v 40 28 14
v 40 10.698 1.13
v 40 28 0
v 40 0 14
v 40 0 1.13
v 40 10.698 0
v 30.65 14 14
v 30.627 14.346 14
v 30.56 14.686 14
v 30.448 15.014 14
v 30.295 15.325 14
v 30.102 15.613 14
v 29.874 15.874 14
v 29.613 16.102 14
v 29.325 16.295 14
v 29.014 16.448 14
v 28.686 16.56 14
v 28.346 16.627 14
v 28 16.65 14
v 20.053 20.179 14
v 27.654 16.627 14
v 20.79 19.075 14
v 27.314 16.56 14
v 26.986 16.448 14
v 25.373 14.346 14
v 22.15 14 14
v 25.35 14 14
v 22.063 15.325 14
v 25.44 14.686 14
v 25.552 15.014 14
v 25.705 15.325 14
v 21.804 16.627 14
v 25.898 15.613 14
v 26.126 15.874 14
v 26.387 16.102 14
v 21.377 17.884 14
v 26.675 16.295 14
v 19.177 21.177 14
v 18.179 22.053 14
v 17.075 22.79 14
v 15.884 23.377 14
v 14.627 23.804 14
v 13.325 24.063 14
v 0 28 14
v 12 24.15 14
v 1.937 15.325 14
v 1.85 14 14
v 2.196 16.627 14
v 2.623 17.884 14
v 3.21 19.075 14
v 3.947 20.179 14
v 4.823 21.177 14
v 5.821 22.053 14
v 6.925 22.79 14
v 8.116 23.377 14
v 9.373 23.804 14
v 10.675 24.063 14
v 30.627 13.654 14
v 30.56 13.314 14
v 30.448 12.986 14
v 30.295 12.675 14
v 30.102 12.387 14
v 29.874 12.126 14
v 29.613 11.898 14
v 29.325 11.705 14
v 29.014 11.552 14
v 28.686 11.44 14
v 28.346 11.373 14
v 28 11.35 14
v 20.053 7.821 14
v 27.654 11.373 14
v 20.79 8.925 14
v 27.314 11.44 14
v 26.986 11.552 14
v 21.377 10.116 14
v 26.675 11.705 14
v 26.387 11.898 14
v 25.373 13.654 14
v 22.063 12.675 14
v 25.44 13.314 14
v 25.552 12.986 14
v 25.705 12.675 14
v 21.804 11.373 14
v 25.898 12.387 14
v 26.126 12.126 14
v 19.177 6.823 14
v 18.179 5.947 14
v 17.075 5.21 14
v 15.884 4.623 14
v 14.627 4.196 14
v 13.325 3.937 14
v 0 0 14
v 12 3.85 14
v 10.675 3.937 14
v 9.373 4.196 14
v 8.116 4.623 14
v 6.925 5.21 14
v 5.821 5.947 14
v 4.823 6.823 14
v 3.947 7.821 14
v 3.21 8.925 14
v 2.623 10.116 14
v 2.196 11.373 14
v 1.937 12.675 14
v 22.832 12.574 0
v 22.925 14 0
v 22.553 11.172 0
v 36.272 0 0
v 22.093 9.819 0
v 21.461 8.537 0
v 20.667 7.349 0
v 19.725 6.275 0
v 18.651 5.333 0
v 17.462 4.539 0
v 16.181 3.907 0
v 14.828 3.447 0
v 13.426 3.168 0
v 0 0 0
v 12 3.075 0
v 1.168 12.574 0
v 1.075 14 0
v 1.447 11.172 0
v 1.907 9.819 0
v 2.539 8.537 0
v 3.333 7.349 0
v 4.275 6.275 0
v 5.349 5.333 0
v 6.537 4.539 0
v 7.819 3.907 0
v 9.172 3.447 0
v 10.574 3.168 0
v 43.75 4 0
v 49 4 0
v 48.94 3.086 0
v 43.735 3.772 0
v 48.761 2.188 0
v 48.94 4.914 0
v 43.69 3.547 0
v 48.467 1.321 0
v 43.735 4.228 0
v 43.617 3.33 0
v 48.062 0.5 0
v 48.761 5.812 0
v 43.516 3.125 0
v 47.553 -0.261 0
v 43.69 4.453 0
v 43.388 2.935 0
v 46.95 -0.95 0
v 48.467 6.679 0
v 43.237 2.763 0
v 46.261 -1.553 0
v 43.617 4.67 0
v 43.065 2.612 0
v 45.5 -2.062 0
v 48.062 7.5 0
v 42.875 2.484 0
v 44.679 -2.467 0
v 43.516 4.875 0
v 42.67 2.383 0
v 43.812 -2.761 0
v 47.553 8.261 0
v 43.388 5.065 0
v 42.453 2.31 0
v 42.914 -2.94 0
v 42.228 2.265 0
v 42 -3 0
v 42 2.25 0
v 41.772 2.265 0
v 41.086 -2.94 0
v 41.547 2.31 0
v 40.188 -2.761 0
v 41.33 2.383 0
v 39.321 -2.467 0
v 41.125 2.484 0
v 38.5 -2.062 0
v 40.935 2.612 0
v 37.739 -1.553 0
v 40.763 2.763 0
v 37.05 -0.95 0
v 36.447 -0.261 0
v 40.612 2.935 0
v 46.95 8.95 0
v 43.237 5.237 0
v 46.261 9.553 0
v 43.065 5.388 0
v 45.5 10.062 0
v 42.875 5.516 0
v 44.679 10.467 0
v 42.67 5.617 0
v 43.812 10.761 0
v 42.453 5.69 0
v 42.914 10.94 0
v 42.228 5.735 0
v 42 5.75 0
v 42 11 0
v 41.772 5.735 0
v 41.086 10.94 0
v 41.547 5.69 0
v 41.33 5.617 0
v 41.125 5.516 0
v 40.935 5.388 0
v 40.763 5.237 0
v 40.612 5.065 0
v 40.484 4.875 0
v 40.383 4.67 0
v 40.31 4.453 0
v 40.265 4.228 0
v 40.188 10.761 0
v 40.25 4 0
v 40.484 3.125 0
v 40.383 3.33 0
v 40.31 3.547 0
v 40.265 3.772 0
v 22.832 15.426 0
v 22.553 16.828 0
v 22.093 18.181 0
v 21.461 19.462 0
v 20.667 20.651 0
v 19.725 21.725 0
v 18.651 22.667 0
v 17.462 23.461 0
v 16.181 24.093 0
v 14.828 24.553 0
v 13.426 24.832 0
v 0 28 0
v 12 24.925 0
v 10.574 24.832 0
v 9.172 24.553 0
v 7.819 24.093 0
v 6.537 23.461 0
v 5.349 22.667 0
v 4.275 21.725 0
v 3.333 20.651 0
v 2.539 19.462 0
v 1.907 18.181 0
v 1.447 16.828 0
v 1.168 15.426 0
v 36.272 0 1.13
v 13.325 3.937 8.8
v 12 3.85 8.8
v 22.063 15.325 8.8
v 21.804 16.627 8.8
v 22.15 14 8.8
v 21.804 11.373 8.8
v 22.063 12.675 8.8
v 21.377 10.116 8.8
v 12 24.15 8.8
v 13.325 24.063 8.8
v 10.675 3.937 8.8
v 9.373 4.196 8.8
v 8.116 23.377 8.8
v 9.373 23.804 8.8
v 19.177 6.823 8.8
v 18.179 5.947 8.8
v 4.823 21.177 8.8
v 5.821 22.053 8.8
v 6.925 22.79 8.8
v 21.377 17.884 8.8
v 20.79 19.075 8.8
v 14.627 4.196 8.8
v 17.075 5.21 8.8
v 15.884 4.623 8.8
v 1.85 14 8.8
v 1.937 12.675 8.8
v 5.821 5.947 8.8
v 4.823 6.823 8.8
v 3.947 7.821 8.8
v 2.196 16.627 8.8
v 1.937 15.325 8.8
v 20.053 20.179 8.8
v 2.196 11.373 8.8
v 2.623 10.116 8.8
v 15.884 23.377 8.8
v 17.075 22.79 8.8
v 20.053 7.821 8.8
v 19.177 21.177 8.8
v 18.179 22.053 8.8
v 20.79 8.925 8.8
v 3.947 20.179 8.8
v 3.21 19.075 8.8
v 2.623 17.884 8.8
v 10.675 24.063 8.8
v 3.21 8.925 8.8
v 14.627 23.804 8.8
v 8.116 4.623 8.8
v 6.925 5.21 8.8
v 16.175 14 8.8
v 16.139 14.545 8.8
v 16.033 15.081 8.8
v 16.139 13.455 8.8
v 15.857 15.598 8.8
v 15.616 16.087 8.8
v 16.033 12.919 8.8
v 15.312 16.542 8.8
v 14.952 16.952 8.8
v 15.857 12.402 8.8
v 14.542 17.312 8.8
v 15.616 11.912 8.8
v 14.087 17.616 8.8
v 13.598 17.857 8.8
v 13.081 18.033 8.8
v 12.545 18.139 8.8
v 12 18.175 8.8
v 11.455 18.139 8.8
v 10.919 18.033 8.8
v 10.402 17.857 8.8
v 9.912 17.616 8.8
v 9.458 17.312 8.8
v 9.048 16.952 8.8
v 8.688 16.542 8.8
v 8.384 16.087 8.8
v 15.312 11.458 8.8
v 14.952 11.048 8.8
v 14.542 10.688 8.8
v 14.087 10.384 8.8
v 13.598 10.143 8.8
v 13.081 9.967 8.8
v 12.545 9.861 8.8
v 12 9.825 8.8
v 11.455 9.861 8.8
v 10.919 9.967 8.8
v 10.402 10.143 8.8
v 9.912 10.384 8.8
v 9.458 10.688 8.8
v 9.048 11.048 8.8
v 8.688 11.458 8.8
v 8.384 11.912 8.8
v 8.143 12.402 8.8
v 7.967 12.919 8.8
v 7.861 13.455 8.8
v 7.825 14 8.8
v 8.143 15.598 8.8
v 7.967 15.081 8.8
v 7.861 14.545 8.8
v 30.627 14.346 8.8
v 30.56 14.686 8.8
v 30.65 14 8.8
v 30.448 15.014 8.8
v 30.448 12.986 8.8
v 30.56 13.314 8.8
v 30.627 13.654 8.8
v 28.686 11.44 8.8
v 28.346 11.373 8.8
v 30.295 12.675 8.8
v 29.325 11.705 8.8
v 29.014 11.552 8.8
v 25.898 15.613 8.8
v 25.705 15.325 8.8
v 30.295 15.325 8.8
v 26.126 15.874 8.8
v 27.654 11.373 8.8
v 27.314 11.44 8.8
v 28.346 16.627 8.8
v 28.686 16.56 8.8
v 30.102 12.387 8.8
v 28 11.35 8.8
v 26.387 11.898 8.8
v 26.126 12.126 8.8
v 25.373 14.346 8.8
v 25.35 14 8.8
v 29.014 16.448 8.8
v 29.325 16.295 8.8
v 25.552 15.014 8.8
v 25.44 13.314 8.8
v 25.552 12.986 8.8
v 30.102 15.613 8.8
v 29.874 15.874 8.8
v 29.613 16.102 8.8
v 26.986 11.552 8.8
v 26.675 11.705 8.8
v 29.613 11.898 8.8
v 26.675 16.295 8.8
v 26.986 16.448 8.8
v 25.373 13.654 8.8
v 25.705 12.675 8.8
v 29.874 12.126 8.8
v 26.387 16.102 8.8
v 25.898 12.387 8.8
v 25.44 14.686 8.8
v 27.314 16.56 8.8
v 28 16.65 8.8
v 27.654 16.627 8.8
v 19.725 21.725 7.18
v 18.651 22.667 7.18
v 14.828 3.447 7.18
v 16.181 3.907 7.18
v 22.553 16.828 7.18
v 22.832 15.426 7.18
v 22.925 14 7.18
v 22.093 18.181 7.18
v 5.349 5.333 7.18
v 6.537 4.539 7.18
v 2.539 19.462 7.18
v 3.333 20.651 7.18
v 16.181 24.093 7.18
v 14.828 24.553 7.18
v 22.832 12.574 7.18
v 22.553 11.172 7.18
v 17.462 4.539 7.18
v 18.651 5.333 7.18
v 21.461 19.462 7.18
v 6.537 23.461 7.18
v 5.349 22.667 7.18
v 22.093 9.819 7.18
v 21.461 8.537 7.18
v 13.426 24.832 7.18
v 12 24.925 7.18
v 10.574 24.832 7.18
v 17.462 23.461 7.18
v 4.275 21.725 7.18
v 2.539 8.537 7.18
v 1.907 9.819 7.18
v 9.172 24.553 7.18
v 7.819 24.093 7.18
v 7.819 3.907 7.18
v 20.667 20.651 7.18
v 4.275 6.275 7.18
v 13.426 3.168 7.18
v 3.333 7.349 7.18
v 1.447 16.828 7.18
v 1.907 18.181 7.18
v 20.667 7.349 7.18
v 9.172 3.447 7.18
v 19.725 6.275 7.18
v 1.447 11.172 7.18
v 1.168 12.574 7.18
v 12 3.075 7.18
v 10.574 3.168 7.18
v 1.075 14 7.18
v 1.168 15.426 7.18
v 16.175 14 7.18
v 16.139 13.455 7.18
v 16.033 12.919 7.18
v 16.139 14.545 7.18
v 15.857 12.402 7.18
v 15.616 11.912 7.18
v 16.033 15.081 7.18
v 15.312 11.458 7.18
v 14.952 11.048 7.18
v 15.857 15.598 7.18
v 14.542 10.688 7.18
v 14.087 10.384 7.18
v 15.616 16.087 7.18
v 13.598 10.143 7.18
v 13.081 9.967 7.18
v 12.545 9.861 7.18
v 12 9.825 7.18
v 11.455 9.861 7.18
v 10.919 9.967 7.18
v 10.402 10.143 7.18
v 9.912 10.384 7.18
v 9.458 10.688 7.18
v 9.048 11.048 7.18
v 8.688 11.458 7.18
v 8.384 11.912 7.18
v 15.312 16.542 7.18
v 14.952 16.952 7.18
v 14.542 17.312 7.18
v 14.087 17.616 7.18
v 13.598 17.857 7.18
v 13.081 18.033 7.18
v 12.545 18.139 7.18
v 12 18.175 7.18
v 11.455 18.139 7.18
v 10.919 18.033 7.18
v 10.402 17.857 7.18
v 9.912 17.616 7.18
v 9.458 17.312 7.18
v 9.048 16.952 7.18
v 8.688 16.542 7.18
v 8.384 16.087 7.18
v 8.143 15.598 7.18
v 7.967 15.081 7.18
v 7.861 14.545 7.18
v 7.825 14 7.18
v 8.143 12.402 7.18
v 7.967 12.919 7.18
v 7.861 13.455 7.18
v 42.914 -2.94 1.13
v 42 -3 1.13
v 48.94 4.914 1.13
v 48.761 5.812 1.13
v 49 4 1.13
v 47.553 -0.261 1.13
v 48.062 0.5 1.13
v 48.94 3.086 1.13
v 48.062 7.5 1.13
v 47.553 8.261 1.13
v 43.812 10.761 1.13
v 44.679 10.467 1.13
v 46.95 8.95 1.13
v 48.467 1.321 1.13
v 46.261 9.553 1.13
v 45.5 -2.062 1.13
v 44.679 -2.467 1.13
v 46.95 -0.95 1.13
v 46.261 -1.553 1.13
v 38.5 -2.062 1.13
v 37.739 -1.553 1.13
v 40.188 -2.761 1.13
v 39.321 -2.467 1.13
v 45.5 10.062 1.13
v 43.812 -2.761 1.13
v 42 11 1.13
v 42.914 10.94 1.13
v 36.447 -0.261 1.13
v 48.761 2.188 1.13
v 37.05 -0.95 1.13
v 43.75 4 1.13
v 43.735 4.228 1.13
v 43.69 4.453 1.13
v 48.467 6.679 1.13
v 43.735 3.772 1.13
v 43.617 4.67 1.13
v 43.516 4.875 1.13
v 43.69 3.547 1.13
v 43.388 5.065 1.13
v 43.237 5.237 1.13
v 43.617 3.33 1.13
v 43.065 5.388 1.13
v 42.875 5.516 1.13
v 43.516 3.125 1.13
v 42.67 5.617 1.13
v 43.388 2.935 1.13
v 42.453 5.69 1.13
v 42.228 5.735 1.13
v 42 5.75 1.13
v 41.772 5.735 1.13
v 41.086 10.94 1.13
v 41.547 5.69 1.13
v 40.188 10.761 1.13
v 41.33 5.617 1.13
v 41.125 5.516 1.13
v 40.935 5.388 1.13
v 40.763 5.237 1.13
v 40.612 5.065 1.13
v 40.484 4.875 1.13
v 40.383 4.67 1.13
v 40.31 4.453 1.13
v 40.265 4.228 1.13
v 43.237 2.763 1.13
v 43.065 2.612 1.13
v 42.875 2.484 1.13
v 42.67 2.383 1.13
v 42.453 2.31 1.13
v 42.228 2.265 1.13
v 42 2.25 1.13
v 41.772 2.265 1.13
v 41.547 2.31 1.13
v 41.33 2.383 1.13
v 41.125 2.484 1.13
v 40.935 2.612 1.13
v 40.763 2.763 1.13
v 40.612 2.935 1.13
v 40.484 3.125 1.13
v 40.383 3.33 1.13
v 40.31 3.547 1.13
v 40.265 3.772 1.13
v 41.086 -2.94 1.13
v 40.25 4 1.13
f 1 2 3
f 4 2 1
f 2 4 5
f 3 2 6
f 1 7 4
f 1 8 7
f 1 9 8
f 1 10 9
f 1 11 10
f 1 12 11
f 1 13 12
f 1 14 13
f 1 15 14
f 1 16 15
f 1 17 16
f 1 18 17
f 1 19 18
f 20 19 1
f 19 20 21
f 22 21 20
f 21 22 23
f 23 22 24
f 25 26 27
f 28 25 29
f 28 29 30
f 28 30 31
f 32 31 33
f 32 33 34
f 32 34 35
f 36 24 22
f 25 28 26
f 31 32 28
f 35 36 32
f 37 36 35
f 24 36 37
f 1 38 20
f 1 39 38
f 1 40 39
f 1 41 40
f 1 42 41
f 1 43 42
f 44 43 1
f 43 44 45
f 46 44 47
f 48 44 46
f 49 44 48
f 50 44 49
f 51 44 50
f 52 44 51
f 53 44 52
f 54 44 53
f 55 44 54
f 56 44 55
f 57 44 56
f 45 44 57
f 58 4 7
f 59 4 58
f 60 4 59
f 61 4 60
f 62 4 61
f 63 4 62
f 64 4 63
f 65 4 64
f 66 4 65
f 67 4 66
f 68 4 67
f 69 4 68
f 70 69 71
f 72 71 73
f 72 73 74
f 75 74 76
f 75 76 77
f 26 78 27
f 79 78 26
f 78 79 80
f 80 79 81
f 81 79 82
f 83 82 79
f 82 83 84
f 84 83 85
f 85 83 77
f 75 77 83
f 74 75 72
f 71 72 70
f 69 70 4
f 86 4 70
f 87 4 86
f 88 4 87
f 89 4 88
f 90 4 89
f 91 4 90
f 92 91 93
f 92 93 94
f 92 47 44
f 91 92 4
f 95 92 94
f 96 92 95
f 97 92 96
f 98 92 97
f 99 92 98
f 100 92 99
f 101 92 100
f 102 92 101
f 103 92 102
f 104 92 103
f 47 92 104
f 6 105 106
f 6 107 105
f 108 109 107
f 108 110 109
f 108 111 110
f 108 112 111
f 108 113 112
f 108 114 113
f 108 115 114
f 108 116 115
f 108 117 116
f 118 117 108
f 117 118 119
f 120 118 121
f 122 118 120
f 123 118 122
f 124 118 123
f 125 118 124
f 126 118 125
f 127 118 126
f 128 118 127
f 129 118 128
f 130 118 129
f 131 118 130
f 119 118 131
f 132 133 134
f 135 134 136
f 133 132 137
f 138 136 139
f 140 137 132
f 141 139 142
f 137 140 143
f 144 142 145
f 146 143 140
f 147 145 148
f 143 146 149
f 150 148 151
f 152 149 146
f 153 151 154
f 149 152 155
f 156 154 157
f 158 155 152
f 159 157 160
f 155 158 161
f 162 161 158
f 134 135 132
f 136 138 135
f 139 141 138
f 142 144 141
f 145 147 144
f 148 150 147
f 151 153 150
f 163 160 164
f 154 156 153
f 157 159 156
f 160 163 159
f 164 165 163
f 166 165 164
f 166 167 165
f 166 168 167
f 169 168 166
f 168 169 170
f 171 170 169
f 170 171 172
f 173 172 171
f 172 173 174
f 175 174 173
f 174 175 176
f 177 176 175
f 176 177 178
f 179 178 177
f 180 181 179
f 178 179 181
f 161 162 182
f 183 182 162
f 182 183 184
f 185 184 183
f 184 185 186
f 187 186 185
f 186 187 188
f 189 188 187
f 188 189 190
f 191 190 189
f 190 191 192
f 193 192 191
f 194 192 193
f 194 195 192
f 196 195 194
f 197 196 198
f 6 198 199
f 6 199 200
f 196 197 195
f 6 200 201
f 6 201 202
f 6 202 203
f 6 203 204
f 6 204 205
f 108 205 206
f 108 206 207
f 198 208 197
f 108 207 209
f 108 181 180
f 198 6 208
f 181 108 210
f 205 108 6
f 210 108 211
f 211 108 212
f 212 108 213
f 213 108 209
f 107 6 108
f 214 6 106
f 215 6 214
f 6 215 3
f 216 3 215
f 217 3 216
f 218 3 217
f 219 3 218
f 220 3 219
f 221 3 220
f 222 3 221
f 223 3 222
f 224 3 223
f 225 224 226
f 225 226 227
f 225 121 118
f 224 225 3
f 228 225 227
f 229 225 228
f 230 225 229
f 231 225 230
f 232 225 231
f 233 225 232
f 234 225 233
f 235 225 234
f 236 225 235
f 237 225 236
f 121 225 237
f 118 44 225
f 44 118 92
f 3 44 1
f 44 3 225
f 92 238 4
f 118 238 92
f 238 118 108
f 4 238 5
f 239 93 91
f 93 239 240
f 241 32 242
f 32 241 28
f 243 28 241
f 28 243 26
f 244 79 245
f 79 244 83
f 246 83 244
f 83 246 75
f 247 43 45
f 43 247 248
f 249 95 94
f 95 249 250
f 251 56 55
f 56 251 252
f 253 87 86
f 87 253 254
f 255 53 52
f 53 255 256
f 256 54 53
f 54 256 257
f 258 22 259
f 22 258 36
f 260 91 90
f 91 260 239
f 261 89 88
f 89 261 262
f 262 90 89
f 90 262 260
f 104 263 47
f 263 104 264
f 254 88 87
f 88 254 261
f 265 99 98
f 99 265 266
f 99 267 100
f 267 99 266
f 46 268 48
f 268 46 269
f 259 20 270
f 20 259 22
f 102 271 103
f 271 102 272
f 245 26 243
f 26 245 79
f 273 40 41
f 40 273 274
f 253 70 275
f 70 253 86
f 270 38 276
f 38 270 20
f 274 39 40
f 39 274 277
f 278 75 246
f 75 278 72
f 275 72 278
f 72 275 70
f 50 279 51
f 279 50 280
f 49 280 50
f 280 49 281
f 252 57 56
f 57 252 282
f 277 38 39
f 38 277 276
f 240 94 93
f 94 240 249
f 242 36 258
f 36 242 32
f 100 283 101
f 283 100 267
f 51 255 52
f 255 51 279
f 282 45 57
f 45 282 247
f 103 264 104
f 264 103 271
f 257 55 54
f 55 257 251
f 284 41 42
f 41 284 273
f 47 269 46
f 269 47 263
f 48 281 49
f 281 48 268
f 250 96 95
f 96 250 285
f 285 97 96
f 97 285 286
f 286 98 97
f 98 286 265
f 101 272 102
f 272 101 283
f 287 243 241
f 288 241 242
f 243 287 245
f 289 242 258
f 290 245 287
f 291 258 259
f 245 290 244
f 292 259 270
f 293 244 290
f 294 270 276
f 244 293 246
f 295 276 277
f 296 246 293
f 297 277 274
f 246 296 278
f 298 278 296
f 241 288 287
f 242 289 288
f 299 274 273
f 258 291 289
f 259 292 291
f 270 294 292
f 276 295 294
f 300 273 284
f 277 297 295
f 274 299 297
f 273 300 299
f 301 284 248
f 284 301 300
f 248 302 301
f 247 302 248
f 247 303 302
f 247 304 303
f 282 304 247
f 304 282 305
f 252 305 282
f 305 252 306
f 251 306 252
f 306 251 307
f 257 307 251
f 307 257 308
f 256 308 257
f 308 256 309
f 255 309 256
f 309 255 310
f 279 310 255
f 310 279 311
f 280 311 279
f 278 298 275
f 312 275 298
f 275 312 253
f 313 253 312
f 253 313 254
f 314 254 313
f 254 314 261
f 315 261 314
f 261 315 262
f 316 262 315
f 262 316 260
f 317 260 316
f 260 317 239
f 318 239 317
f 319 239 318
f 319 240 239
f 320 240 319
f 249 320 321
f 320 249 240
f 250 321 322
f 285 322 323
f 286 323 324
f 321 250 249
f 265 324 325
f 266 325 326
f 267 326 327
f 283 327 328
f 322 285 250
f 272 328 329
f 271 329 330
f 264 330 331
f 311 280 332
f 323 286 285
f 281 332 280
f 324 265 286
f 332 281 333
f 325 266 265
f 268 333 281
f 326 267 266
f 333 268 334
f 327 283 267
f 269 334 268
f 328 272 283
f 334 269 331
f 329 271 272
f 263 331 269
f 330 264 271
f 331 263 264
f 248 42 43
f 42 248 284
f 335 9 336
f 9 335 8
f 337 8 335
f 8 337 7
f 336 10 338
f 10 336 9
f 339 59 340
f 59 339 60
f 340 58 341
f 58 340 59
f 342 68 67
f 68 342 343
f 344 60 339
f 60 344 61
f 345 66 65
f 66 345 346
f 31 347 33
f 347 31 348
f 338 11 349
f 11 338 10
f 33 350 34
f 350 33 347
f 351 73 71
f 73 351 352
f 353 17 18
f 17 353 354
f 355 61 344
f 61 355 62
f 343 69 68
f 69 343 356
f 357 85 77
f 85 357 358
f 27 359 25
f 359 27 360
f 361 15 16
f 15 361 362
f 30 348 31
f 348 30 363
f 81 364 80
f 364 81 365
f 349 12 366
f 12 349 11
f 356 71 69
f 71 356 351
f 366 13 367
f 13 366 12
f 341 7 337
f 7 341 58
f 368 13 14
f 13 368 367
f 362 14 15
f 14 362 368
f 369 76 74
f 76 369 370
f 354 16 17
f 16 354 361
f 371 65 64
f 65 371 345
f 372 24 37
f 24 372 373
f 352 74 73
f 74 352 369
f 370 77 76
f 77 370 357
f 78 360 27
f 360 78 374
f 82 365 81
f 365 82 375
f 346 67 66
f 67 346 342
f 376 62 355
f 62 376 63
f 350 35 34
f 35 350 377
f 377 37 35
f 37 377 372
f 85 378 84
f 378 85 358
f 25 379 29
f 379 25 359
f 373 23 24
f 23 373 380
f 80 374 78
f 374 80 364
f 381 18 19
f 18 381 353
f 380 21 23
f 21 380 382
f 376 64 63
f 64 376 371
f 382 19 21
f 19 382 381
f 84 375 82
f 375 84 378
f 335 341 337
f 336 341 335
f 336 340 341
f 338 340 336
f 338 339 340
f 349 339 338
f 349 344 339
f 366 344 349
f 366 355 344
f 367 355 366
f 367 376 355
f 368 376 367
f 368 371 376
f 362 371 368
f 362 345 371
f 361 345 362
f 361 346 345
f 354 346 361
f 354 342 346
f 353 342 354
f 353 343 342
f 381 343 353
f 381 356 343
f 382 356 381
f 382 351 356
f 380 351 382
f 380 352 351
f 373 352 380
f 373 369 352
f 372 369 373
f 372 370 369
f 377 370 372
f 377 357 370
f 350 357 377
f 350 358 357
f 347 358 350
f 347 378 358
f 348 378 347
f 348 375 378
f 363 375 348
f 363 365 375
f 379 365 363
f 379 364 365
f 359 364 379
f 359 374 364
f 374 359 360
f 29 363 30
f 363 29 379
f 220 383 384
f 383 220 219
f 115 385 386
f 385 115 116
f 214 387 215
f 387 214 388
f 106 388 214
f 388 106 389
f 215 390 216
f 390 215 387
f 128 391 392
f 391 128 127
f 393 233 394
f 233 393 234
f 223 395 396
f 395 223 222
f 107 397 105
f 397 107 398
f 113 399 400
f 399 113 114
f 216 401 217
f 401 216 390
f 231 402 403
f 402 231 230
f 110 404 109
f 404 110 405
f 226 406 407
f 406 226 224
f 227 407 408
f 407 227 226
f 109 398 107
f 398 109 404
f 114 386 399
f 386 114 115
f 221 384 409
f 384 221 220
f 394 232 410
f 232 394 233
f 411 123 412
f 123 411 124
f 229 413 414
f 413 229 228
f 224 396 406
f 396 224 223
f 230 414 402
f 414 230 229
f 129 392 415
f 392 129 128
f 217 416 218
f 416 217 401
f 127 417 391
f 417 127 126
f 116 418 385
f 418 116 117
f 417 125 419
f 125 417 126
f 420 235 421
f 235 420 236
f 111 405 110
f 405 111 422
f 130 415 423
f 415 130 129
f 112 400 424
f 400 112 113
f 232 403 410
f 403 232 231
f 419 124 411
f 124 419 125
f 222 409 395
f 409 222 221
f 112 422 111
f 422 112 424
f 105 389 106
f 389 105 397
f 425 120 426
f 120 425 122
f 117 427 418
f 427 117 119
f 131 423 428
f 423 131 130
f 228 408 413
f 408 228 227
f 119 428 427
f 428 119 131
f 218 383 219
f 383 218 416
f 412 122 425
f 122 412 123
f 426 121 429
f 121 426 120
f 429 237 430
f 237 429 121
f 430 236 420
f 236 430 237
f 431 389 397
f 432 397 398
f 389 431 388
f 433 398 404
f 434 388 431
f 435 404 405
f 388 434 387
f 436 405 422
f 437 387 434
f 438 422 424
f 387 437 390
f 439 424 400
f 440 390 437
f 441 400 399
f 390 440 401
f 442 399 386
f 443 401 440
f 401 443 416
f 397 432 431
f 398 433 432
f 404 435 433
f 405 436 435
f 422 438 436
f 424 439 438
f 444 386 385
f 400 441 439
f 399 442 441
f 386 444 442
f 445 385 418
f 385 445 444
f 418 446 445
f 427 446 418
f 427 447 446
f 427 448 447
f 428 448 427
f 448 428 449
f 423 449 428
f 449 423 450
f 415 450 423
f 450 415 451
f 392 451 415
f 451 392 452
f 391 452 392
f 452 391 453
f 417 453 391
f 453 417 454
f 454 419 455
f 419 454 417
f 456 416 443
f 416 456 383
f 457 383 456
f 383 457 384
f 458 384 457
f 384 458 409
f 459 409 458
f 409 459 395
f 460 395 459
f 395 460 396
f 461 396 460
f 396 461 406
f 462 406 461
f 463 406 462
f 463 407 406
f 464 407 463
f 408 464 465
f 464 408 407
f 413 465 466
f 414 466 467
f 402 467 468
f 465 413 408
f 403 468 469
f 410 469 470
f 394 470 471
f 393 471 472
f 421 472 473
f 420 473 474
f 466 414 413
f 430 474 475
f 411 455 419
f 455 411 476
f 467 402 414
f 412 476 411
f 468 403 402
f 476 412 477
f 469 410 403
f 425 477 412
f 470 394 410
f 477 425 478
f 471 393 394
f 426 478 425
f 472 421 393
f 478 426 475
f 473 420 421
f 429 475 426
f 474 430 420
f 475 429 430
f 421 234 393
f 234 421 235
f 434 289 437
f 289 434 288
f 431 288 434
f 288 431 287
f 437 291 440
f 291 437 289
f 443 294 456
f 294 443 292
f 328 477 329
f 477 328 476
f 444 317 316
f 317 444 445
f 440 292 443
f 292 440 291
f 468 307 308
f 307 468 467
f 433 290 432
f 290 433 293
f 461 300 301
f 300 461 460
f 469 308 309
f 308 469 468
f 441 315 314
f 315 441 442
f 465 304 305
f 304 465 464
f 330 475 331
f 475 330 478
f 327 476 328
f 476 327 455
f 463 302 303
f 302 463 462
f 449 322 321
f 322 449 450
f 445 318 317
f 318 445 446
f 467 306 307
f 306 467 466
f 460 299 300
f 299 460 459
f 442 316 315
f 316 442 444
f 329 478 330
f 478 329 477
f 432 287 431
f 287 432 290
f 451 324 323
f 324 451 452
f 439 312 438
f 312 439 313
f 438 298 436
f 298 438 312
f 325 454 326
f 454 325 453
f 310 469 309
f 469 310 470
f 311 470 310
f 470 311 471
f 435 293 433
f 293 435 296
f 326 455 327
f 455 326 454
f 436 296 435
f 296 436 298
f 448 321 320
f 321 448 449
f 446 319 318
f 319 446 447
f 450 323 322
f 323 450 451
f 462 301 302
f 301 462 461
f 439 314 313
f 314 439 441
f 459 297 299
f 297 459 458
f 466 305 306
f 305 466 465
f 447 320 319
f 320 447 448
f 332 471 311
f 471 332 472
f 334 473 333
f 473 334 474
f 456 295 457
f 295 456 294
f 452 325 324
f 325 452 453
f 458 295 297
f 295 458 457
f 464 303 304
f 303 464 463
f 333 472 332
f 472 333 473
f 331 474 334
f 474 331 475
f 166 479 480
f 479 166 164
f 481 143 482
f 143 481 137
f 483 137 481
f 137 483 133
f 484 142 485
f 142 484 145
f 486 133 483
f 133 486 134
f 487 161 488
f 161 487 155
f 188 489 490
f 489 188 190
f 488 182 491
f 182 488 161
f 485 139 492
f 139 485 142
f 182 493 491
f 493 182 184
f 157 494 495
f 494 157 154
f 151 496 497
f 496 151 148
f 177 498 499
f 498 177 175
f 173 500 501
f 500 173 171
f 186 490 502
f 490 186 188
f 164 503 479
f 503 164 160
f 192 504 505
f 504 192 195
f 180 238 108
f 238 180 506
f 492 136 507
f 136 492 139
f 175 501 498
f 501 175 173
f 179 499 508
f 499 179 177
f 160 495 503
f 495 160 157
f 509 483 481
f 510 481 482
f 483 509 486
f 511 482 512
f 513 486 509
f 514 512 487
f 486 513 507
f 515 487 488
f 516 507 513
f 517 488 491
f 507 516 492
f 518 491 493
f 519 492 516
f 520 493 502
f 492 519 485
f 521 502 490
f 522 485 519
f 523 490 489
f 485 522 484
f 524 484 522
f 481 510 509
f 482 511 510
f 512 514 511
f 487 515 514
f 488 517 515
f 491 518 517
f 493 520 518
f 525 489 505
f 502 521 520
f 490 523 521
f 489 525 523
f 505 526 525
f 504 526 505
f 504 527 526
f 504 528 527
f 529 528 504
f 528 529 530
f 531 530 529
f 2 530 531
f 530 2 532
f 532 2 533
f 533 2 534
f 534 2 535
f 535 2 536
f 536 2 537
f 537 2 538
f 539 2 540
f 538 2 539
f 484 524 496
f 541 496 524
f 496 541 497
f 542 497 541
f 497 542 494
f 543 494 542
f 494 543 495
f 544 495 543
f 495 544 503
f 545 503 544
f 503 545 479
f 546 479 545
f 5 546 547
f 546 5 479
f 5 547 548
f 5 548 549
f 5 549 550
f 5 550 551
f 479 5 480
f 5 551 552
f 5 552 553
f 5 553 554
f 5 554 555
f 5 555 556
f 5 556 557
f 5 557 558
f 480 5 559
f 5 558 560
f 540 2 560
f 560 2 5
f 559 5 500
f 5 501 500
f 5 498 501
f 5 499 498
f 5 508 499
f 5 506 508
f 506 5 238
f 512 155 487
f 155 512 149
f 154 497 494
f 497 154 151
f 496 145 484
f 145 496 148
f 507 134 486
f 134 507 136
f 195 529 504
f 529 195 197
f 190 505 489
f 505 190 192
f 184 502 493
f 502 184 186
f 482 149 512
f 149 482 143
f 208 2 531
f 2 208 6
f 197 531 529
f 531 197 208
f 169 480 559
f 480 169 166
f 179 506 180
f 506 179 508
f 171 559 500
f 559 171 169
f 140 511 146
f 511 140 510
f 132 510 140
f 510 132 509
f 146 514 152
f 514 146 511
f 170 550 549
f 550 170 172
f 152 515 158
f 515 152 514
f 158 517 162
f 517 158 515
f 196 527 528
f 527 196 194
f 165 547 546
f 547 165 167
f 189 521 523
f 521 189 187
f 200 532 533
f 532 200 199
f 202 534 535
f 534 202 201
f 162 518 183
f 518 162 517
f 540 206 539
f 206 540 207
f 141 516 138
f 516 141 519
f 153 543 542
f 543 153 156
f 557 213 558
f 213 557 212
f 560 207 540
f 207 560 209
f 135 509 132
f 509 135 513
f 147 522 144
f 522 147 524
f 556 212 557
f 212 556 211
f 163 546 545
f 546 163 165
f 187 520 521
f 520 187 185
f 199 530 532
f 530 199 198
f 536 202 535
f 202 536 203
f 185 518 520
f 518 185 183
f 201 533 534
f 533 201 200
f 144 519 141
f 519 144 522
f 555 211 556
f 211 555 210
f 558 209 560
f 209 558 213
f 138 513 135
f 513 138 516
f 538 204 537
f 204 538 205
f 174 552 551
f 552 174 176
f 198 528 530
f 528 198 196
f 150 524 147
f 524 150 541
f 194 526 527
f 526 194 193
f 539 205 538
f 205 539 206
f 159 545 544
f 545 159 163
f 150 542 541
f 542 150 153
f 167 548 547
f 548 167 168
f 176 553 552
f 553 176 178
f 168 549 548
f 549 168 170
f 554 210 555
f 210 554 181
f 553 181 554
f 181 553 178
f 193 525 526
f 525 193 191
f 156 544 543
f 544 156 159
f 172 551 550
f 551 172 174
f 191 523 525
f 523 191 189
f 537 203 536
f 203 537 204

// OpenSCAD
// file: parameters.scad
// =============================================================================
// Gen-AK Dual-rotor copper-centroid ultra AFPM — WOUND-AWARE (HARD GATE)
// PRIMARY challenger vs Gen-AH. Magnets @ R=40 + 190 t + former_web 1.40 → m2m 4.86.
// =============================================================================

// --- Wire / wind budget (26 AWG, ~1 lb spool ≈ 390 m bare-equiv) --------------
wire_awg            = 26;
wire_od             = 0.45;     // insulated OD mm
turns               = 190;      // +10 vs Gen-AH 180
fill                = 0.70;
layers_per_face     = 2;        // axial layers proud of EACH flange
wind_build_axial    = layers_per_face * wire_od * fill;   // 0.63 mm
wind_build_radial   = 3 * wire_od * fill;                 // 0.945 mm

// --- Pancake former (bare STL) -----------------------------------------------
coil_id_r           = 16.0;     // copper-centroid window centered ~R=40
coil_od_r           = 64.0;
span_deg            = 26.0;     // 12 stations × 30° pitch
former_web          = 1.40;     // thinner vs AH 1.50 (print-safe ≥0.8)
flange_t            = 0.60;
wall                = 1.2;
slot_w              = 2.4;
mount_hole          = 3.5;
tab_len             = 7.0;

former_bare_h       = former_web + 2 * flange_t;            // 2.60 mm
coil_envelope_h     = former_bare_h + 2 * wind_build_axial; // 3.86 mm

// --- Running clearance (magnet face → WOUND face) EACH side ------------------
run_clear           = 0.50;     // PASS floor ≥ 0.5
gap_spacer_h        = run_clear + wind_build_axial;         // 1.13 mm
m2m                 = coil_envelope_h + 2 * run_clear;      // 4.86 mm (beats Gen-AH 4.96)

// --- Mid stator (12 pancakes 3φ; winds proud both faces) ---------------------
coil_stations       = 12;
bay_r_in            = coil_id_r - 2.0 - wind_build_radial;
bay_r_out           = coil_od_r + 2.0 + wind_build_radial;
bay_span            = span_deg + 4.0;
bay_offset          = 2.0;
stator_thick        = former_bare_h;                        // winds proud ±Z
stator_od           = 160.0;
shaft_clear_stator  = 34.0;
coil_mount_r        = 26.0;

// --- Rotors (×2) — 8×Ø20 @ R=40 (copper centroid) + 24×Ø5 Halbach ------------
large_pocket_d      = 20.3;
small_pocket_d      = 5.3;
pocket_h            = 5.2;
large_n             = 8;
R_large             = 40.0;     // covers ~30–50 over copper centroid ~40
R_small_inner       = 25.0;
R_small_mid         = 40.0;
R_small_outer       = 57.0;
carrier_od          = 156.0;
carrier_thick       = 7.5;
hub_h               = 10.0;
hub_od              = 30.0;
rotor_b_offset_deg  = 22.5;

// --- Modular MAX interface (Gen-E family) ------------------------------------
shaft_bore          = 8.35;
bearing_d           = 21.85;
bearing_h           = 7.2;
m3_clear            = 3.5;
bolt_r_inner        = 36.0;
bolt_n_inner        = 6;
flange_bolt_r       = 72.0;
flange_bolt_n       = 6;
brace_r             = 68.0;
brace_d             = 4.3;
brace_n             = 4;

spacer_pad_od       = 14.0;
spacer_pad_id       = m3_clear;
endbell_od          = 160.0;
endbell_thick       = 8.0;
endbell_shaft_clear = 10.0;

$fn = 64;
// main file
// Gen-AK fit coupon — magnet pockets + 608 + spacer height
include <parameters.scad>;
$fn = 48;
block_w = 40; block_d = 28; block_h = 14;
difference() {
    cube([block_w, block_d, block_h]);
    translate([12, block_d/2, block_h - pocket_h])
        cylinder(d=large_pocket_d, h=pocket_h + 0.2);
    translate([28, block_d/2, block_h - pocket_h])
        cylinder(d=small_pocket_d, h=pocket_h + 0.2);
    translate([12, block_d/2, -0.02])
        cylinder(d=bearing_d, h=bearing_h);
    translate([12, block_d/2, -0.1])
        cylinder(d=shaft_bore, h=block_h + 1);
}
translate([block_w + 2, 4, 0])
    difference() {
        cylinder(d=spacer_pad_od, h=gap_spacer_h);
        translate([0, 0, -0.1]) cylinder(d=spacer_pad_id, h=gap_spacer_h + 0.2);
    }
